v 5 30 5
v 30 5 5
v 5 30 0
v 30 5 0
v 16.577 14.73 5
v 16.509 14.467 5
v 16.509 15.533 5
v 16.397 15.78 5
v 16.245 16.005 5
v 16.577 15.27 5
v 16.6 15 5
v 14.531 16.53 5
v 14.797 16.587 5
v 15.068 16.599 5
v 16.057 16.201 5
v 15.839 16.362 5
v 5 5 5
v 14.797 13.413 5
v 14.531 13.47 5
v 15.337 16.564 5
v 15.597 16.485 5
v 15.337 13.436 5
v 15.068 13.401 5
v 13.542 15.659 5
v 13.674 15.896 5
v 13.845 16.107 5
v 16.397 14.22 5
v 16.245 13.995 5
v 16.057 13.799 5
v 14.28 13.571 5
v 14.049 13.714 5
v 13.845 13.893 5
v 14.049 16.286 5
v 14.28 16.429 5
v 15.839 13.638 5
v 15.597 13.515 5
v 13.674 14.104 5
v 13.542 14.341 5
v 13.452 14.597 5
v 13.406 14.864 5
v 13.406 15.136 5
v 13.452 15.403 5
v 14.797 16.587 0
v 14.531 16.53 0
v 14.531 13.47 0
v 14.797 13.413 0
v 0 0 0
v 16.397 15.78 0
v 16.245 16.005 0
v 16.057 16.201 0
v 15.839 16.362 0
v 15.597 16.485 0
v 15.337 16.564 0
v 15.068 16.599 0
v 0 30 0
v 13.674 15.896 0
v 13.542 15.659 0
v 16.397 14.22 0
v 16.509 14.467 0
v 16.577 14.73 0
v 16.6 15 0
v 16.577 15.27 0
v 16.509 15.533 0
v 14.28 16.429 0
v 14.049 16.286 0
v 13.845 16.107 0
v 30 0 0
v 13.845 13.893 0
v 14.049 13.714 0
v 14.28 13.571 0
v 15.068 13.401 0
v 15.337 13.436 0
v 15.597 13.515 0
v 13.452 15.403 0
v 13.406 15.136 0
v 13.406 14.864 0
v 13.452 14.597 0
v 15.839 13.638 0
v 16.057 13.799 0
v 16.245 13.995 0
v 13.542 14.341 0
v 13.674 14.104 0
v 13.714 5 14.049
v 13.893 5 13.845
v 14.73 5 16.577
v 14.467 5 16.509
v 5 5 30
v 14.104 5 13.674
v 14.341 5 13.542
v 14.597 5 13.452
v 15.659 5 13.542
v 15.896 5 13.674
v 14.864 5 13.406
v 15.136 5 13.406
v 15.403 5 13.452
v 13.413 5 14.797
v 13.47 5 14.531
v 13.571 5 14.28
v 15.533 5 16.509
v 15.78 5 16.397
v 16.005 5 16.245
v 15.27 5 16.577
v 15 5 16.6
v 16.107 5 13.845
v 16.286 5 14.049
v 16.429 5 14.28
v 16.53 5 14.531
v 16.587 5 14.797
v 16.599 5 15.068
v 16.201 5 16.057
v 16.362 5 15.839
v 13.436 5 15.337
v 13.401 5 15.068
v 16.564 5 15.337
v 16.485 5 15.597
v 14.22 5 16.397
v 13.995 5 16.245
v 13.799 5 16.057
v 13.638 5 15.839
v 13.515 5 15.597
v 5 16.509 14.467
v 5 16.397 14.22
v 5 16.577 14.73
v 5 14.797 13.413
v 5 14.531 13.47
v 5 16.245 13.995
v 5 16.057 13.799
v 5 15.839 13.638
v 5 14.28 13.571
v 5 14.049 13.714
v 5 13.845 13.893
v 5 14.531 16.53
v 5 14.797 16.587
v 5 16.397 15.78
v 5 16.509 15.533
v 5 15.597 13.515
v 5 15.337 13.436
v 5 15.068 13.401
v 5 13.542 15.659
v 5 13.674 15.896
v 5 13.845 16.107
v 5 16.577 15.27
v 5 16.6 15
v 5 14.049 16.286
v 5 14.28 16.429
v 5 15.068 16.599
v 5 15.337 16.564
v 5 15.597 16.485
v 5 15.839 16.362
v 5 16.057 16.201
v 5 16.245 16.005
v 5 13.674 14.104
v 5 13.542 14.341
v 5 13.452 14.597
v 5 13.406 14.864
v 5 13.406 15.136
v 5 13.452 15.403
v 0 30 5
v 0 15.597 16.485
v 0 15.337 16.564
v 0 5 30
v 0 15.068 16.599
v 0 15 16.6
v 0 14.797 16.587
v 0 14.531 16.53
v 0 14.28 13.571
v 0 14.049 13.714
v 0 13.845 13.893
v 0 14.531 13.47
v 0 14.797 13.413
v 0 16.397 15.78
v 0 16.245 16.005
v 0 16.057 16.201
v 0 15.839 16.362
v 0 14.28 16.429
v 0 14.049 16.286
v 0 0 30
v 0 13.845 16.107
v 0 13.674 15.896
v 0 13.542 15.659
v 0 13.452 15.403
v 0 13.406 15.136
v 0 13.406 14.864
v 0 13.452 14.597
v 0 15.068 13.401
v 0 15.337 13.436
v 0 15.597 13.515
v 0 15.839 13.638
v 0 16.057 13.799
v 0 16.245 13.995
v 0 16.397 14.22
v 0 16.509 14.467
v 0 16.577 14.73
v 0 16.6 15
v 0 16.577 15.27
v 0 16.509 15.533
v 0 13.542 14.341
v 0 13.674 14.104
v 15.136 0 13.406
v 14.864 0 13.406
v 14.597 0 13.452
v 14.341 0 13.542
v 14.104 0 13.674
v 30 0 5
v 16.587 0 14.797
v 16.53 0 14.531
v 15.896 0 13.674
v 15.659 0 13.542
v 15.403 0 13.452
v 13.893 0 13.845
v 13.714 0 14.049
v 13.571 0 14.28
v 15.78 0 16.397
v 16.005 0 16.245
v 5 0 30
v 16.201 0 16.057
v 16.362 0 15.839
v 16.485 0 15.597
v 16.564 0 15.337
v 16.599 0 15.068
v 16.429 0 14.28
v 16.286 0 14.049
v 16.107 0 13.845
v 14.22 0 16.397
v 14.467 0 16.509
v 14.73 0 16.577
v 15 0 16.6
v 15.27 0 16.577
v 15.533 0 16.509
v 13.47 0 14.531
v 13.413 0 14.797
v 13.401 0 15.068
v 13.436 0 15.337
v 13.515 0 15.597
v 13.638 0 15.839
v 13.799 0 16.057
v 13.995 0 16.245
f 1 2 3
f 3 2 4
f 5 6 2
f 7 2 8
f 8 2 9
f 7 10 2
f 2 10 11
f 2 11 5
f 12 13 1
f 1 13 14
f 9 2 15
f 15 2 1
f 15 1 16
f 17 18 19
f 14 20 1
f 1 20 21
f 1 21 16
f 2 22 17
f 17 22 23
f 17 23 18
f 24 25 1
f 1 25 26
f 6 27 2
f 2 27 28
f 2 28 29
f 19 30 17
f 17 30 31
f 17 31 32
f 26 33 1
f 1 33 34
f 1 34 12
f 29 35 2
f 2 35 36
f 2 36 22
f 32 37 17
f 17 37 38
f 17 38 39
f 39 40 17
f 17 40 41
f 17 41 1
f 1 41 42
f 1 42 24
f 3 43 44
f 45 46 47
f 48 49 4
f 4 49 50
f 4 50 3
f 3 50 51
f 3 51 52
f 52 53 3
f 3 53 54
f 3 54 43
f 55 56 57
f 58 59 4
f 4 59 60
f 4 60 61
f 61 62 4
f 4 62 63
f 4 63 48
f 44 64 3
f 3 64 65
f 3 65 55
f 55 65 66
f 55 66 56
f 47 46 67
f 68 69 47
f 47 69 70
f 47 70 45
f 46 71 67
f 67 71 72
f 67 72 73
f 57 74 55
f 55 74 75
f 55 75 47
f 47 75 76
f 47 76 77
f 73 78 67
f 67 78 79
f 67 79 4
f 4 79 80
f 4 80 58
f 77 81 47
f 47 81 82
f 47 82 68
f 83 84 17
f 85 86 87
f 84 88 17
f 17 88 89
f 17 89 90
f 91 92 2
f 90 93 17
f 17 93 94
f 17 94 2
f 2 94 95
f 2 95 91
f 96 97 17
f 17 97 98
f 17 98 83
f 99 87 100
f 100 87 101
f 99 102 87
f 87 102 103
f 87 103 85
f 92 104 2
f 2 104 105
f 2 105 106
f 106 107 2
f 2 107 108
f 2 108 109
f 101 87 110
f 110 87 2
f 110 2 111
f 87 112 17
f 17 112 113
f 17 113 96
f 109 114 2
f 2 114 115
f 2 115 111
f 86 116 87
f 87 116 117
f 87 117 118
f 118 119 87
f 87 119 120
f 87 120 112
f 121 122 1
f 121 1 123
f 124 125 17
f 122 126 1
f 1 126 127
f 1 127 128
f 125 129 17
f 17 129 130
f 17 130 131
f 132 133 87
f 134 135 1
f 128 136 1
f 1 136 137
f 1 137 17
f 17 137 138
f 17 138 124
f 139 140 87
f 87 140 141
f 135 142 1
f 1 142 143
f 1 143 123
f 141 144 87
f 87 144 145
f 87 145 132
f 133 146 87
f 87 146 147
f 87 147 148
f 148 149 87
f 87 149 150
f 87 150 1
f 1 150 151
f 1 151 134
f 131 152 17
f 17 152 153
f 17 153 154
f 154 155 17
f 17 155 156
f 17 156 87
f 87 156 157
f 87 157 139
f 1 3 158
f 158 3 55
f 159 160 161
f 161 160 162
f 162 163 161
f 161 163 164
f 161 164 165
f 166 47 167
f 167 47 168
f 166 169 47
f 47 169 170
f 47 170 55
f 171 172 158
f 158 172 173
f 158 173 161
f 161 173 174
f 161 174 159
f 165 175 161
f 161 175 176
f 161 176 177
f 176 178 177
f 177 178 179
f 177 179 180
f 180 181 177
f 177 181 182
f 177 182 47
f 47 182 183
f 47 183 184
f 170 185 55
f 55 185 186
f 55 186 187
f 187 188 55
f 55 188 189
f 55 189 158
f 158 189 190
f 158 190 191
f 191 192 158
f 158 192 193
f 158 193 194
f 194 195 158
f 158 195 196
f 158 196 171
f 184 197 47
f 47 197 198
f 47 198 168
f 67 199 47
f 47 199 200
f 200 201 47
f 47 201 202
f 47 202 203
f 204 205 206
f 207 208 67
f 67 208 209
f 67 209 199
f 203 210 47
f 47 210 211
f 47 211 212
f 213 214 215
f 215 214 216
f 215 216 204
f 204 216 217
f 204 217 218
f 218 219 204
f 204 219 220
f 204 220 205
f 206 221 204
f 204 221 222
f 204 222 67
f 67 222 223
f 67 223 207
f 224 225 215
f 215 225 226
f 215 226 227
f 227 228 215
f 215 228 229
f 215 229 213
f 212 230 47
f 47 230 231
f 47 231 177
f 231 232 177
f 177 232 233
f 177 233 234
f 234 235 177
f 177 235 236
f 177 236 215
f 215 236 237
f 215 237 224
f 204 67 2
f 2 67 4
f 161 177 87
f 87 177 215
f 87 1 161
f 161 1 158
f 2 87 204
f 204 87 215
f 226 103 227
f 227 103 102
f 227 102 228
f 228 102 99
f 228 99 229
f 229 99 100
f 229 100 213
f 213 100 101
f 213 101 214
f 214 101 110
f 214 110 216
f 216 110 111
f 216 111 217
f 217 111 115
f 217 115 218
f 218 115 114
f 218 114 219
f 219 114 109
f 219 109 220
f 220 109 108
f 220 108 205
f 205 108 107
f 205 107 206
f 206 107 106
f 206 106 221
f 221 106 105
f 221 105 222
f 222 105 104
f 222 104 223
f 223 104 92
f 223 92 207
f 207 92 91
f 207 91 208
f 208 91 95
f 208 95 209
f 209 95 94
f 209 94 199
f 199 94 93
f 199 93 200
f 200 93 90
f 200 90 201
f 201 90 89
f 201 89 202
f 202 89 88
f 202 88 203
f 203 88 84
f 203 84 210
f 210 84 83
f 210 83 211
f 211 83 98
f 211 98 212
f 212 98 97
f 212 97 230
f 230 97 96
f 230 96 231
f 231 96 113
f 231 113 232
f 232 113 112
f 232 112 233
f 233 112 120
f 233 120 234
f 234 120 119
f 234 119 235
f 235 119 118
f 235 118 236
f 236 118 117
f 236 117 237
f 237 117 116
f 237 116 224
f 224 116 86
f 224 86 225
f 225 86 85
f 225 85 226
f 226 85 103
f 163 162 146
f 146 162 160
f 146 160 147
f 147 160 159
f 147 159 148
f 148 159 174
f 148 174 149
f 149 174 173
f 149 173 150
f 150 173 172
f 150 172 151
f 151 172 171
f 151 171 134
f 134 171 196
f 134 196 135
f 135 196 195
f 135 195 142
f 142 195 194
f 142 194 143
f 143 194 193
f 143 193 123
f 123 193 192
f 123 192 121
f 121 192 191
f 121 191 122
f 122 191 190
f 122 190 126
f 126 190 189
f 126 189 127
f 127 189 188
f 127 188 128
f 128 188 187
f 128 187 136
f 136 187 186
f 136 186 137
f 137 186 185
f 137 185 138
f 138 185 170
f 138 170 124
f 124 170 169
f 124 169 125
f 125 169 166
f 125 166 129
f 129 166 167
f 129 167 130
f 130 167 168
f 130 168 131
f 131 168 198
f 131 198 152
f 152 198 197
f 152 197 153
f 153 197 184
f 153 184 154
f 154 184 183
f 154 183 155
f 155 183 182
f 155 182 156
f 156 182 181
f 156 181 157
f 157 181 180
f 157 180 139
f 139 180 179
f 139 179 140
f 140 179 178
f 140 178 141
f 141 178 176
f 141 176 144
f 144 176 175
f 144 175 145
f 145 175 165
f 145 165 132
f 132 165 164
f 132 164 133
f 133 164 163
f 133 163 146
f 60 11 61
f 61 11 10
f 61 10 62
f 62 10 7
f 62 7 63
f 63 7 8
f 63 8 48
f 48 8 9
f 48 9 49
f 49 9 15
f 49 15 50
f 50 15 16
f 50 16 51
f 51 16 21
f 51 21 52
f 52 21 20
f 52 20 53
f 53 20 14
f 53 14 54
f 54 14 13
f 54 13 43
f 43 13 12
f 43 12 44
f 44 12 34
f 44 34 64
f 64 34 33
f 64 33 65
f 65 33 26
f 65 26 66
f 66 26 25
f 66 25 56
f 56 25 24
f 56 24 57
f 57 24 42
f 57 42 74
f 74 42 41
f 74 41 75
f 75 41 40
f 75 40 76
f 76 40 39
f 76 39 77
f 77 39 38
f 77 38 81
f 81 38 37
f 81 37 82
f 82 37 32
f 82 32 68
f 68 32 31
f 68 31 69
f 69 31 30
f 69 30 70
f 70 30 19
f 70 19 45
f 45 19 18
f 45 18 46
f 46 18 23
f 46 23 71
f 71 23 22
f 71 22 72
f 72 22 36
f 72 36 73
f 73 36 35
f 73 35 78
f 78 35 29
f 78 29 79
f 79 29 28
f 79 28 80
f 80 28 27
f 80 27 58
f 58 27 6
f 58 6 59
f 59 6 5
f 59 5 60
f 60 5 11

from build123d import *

# Parameters (mm, degrees)
AUFSATZ_LINEAR_AUSTRAGEN2_DEPTH = 5
AUFSATZ_LINEAR_AUSTRAGEN3_DEPTH = 30
FASE3_SIZE                      = 25
SKIZZE3_R                       = 1.6
SCHNITT_LINEAR_AUSTRAGEN2_DEPTH = 30
SKIZZE4_R                       = 1.6
SCHNITT_LINEAR_AUSTRAGEN3_DEPTH = 30
SKIZZE5_R                       = 1.6
SCHNITT_LINEAR_AUSTRAGEN4_DEPTH = 30


with BuildPart() as part:
    # Skizze1 → Aufsatz-Linear austragen2 (new body)
    with BuildSketch(Plane.XY):
        Polygon((5, 5), (30, 5), (5, 30), align=None)
    extrude(amount=AUFSATZ_LINEAR_AUSTRAGEN2_DEPTH)

    # Skizze1<5> → Aufsatz-Linear austragen3 (add)
    with BuildSketch(Plane.XY):
        Polygon((0, 30), (0, 0), (30, 0), (30, 5), (5, 5), (5, 30), align=None)
    extrude(amount=AUFSATZ_LINEAR_AUSTRAGEN3_DEPTH)

    # Fase3
    fase3_edges = [part.edges().sort_by_distance(p)[0] for p in [
        (2.5, 30, 30),
        (30, 2.5, 30),
    ]]
    chamfer(fase3_edges, length=FASE3_SIZE)

    # Skizze3 → Schnitt-Linear austragen2 (cut)
    with BuildSketch(Plane(origin=(0, 5, 0), x_dir=(1, 0, 0), z_dir=(0, 1, 0))):
        with Locations((15, -15)):
            Circle(SKIZZE3_R)
    extrude(amount=-SCHNITT_LINEAR_AUSTRAGEN2_DEPTH, mode=Mode.SUBTRACT)

    # Skizze4 → Schnitt-Linear austragen3 (cut)
    with BuildSketch(Plane(origin=(5, 0, 0), x_dir=(0, 0, -1), z_dir=(1, 0, 0))):
        with Locations((-15, 15)):
            Circle(SKIZZE4_R)
    extrude(amount=-SCHNITT_LINEAR_AUSTRAGEN3_DEPTH, mode=Mode.SUBTRACT)

    # Skizze5 → Schnitt-Linear austragen4 (cut)
    with BuildSketch(Plane.XY.offset(5)):
        with Locations((15, 15)):
            Circle(SKIZZE5_R)
    extrude(amount=-SCHNITT_LINEAR_AUSTRAGEN4_DEPTH, mode=Mode.SUBTRACT)


solid = part.part
